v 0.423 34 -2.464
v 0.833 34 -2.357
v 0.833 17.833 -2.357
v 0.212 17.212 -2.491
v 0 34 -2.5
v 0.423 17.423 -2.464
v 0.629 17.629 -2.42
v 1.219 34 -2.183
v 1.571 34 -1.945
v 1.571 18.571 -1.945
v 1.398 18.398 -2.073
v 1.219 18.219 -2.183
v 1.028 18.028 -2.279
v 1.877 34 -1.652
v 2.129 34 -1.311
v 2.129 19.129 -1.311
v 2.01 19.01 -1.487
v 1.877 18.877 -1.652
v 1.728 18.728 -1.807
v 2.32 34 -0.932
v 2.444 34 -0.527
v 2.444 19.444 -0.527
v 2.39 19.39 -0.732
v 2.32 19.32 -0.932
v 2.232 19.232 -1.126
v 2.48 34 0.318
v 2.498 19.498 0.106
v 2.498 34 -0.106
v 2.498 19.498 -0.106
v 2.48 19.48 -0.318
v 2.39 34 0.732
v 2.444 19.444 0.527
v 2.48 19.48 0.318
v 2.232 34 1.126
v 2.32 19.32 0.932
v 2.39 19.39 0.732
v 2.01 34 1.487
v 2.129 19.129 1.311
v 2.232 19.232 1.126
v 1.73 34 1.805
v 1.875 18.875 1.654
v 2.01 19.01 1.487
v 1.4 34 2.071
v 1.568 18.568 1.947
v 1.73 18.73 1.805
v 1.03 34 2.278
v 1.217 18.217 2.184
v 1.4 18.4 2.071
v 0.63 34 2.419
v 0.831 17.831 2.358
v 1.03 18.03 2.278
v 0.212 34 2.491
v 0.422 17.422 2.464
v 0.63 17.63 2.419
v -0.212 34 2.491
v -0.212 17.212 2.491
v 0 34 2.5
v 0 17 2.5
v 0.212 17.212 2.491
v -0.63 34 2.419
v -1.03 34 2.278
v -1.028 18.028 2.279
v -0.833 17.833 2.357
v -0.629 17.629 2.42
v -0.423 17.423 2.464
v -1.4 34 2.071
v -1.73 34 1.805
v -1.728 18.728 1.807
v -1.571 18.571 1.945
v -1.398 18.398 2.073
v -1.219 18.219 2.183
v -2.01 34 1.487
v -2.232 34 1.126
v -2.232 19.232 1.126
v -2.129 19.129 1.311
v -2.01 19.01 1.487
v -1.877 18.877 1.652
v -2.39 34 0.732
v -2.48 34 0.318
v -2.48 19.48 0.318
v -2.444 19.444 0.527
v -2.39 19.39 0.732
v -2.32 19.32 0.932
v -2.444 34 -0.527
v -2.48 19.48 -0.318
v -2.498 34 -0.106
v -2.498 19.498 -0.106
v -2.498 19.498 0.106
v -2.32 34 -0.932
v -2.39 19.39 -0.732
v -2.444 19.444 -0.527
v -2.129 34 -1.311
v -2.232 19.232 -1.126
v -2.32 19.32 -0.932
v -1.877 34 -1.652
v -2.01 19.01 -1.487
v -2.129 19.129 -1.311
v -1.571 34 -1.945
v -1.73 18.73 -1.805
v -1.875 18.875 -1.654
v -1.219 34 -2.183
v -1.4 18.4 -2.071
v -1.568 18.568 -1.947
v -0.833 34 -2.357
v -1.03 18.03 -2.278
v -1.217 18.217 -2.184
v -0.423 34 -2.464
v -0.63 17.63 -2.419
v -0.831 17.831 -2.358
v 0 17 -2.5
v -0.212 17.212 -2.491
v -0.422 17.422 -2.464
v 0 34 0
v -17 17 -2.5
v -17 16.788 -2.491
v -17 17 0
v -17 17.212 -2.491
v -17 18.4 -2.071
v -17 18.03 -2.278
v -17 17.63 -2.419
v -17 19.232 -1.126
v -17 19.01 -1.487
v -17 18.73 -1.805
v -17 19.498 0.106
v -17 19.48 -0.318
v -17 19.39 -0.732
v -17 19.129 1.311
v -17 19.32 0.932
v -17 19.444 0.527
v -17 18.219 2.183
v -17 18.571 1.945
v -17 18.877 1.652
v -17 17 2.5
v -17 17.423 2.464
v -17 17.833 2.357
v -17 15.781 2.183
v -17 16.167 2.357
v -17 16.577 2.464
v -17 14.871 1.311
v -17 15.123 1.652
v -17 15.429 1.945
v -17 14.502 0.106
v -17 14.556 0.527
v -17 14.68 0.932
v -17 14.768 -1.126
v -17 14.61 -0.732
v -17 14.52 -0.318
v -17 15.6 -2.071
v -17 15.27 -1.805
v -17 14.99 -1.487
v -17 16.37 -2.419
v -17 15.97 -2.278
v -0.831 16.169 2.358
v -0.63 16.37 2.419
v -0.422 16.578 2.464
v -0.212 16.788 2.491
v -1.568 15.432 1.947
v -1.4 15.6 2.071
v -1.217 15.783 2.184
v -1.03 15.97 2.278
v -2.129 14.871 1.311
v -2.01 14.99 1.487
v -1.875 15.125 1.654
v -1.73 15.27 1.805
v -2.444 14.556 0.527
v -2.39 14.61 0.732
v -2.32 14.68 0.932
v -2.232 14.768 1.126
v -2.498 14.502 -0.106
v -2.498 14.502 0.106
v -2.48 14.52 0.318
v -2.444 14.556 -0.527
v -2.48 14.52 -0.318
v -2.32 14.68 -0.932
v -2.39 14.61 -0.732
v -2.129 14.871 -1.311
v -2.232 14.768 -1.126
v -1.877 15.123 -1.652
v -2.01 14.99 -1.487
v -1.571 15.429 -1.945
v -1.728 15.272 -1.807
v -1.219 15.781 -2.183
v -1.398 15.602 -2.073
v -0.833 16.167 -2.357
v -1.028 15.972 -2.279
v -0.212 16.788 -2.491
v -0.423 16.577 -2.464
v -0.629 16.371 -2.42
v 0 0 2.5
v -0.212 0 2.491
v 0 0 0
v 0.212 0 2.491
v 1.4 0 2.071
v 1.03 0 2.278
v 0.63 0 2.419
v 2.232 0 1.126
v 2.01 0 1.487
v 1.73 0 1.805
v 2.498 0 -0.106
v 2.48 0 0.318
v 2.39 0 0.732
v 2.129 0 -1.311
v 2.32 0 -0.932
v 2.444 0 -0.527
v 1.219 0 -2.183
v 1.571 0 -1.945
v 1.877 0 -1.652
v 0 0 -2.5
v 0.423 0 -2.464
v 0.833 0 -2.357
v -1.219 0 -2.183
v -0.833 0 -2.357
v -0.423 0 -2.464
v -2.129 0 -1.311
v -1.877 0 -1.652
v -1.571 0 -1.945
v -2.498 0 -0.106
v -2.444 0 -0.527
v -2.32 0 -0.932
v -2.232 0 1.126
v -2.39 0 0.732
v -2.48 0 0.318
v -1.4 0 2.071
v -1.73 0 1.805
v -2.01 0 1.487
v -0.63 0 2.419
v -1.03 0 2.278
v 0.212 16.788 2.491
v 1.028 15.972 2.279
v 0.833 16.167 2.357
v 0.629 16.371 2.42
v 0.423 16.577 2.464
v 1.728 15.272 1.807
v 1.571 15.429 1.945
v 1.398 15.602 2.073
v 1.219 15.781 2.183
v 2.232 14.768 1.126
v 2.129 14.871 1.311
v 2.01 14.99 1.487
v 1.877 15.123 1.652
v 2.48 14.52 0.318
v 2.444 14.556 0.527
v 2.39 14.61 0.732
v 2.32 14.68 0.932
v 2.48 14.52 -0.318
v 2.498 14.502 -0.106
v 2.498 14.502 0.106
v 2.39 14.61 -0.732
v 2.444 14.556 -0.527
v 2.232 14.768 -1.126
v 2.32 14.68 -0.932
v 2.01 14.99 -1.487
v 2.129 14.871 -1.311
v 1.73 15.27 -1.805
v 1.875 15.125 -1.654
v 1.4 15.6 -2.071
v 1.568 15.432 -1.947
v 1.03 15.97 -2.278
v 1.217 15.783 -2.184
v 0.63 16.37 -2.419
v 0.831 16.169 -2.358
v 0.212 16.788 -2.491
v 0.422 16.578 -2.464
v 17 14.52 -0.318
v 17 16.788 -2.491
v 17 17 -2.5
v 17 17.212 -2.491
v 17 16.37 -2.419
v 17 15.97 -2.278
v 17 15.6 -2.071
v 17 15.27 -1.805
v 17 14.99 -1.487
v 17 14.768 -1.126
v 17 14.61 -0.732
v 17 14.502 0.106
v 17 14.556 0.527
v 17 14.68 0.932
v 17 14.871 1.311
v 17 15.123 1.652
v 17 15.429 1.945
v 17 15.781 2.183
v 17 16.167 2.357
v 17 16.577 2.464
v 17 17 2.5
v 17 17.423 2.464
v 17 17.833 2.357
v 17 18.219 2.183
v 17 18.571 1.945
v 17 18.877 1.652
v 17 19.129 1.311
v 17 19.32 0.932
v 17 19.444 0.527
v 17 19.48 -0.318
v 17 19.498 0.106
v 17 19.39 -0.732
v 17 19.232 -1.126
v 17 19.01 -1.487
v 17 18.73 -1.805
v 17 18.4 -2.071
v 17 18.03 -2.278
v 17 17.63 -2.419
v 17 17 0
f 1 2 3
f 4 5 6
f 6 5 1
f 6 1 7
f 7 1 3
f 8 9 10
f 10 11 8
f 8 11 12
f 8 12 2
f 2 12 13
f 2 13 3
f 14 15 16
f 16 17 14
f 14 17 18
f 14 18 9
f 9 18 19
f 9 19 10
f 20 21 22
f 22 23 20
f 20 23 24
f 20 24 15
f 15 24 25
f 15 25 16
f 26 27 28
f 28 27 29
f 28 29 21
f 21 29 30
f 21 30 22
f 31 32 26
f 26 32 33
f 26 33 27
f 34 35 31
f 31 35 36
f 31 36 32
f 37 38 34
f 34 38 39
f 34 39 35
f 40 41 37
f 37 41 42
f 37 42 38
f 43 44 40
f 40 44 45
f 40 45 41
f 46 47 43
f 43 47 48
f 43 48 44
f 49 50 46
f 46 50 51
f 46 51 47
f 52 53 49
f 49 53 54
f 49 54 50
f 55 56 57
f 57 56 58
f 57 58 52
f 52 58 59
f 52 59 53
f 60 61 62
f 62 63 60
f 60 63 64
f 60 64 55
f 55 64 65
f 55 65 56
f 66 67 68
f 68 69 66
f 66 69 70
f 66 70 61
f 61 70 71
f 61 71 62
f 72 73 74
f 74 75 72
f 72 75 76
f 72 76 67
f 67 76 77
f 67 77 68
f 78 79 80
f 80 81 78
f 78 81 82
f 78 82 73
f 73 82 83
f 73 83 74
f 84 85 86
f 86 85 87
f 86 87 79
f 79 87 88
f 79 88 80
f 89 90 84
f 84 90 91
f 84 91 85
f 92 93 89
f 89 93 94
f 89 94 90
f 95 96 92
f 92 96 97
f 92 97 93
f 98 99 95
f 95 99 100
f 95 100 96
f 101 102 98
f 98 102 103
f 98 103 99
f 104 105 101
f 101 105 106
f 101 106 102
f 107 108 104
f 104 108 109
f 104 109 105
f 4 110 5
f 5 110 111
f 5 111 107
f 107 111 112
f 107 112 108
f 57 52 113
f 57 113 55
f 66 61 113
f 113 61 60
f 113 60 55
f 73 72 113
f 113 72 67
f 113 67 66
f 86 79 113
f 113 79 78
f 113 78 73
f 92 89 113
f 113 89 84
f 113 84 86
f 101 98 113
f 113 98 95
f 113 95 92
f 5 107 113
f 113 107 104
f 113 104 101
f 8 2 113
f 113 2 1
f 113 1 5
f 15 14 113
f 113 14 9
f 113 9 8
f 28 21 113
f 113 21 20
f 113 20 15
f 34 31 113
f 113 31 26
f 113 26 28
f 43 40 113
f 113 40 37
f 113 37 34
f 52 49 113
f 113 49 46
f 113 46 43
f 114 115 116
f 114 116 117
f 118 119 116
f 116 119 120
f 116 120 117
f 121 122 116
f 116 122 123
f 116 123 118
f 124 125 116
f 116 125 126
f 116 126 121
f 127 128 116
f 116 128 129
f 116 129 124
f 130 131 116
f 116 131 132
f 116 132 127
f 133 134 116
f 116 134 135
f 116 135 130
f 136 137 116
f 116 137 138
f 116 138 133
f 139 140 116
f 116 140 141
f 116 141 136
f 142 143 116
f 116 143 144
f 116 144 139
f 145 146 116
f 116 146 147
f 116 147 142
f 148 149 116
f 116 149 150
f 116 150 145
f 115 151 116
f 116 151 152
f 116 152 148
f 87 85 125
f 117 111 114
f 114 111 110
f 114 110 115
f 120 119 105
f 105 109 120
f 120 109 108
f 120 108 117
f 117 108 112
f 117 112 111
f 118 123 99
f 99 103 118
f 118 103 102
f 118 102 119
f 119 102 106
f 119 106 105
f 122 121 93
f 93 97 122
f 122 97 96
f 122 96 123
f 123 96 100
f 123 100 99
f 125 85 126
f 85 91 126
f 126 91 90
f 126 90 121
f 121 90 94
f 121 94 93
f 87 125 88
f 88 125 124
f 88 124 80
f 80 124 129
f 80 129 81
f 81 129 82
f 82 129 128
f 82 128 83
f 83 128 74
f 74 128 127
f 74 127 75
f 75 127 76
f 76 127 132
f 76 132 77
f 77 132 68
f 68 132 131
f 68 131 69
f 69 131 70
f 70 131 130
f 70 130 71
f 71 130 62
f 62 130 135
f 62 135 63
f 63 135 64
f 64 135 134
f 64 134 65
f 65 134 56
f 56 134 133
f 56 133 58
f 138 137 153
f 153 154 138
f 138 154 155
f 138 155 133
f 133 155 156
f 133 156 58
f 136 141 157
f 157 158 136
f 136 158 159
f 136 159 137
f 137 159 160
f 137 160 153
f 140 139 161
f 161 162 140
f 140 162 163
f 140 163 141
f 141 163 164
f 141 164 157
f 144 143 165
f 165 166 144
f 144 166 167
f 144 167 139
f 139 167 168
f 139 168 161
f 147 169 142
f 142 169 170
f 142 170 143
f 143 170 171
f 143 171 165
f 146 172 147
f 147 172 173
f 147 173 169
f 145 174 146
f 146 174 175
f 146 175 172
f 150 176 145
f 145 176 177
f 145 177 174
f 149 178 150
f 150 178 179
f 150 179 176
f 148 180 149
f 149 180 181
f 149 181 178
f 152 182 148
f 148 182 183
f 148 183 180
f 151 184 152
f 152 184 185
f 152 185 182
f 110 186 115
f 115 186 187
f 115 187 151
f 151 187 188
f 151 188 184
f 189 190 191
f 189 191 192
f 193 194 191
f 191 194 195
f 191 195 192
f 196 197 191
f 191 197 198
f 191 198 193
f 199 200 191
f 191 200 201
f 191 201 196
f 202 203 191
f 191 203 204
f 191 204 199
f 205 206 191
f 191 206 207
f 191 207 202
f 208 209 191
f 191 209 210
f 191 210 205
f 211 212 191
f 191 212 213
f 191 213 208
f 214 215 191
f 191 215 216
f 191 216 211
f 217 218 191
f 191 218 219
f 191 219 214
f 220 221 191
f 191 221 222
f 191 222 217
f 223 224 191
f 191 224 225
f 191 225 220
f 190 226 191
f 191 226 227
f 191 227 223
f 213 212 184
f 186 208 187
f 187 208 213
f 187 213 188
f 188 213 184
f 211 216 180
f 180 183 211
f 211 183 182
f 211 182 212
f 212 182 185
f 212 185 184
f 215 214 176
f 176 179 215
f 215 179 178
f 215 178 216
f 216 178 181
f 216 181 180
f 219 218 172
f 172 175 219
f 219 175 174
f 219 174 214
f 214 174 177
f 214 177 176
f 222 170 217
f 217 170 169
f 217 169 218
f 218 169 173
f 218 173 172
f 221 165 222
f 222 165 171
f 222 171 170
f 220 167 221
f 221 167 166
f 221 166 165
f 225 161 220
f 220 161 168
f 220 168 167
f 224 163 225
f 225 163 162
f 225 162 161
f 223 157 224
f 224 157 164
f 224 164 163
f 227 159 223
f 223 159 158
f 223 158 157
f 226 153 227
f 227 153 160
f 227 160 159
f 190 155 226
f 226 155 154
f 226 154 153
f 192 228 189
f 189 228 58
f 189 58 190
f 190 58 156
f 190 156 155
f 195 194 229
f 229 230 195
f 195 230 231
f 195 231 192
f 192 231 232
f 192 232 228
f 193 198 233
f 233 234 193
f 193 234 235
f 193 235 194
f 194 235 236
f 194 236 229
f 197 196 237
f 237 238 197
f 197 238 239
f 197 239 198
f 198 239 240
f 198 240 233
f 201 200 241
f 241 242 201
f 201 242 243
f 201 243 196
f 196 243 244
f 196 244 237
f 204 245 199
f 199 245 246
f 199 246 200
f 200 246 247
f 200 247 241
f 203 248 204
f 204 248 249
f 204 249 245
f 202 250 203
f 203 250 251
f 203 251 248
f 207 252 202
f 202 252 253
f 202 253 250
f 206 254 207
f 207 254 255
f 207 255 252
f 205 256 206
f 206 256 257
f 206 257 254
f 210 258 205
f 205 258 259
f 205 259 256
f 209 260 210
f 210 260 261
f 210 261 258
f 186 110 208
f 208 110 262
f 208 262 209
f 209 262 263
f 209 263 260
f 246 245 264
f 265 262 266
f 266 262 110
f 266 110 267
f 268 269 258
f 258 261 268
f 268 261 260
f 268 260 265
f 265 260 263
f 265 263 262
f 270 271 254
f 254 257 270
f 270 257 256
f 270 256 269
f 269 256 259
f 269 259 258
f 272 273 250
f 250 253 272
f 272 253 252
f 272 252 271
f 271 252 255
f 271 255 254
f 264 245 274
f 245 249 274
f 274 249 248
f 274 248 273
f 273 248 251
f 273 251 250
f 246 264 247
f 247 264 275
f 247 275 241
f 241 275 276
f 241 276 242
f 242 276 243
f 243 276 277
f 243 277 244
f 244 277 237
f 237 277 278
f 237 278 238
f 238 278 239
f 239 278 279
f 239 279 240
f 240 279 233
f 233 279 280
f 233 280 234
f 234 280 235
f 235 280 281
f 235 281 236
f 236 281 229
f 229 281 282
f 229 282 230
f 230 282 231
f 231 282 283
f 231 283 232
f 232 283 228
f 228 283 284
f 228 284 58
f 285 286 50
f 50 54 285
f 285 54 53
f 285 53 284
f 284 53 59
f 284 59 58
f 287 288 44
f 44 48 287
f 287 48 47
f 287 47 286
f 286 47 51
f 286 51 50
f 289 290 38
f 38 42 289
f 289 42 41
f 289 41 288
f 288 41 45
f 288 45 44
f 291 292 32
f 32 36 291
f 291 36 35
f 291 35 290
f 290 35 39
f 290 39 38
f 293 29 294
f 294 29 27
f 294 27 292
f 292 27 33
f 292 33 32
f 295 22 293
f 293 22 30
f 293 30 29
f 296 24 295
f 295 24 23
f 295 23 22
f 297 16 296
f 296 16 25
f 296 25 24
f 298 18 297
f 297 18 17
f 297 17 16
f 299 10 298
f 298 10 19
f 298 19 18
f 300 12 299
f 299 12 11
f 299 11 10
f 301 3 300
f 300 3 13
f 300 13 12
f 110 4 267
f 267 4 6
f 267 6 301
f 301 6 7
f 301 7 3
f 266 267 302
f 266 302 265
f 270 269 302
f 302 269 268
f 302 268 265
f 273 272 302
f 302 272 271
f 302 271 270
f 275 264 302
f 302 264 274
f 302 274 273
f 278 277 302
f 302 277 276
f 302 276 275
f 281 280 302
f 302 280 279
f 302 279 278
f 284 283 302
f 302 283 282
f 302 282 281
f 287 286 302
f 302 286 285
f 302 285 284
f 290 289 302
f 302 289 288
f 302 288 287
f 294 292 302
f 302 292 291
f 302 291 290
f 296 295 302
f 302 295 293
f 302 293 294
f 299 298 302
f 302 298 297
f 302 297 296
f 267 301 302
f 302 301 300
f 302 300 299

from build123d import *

# Parameters (mm, degrees)
SKETCH2_R           = 2.5
BOSS_EXTRUDE1_DEPTH = 34
SKETCH3_R           = 2.5
BOSS_EXTRUDE2_DEPTH = 17


with BuildPart() as part:
    # Sketch2 → Boss-Extrude1 (new body)
    with BuildSketch(Plane(origin=(0, 0, 0), x_dir=(1, 0, 0), z_dir=(0, 1, 0))):
        Circle(SKETCH2_R)
    extrude(amount=BOSS_EXTRUDE1_DEPTH)

    # Sketch3 → Boss-Extrude2 (add, symmetric)
    with BuildSketch(Plane(origin=(0, 0, 0), x_dir=(0, 0, -1), z_dir=(1, 0, 0))):
        with Locations((0, 17)):
            Circle(SKETCH3_R)
    extrude(amount=BOSS_EXTRUDE2_DEPTH, both=True)


solid = part.part
